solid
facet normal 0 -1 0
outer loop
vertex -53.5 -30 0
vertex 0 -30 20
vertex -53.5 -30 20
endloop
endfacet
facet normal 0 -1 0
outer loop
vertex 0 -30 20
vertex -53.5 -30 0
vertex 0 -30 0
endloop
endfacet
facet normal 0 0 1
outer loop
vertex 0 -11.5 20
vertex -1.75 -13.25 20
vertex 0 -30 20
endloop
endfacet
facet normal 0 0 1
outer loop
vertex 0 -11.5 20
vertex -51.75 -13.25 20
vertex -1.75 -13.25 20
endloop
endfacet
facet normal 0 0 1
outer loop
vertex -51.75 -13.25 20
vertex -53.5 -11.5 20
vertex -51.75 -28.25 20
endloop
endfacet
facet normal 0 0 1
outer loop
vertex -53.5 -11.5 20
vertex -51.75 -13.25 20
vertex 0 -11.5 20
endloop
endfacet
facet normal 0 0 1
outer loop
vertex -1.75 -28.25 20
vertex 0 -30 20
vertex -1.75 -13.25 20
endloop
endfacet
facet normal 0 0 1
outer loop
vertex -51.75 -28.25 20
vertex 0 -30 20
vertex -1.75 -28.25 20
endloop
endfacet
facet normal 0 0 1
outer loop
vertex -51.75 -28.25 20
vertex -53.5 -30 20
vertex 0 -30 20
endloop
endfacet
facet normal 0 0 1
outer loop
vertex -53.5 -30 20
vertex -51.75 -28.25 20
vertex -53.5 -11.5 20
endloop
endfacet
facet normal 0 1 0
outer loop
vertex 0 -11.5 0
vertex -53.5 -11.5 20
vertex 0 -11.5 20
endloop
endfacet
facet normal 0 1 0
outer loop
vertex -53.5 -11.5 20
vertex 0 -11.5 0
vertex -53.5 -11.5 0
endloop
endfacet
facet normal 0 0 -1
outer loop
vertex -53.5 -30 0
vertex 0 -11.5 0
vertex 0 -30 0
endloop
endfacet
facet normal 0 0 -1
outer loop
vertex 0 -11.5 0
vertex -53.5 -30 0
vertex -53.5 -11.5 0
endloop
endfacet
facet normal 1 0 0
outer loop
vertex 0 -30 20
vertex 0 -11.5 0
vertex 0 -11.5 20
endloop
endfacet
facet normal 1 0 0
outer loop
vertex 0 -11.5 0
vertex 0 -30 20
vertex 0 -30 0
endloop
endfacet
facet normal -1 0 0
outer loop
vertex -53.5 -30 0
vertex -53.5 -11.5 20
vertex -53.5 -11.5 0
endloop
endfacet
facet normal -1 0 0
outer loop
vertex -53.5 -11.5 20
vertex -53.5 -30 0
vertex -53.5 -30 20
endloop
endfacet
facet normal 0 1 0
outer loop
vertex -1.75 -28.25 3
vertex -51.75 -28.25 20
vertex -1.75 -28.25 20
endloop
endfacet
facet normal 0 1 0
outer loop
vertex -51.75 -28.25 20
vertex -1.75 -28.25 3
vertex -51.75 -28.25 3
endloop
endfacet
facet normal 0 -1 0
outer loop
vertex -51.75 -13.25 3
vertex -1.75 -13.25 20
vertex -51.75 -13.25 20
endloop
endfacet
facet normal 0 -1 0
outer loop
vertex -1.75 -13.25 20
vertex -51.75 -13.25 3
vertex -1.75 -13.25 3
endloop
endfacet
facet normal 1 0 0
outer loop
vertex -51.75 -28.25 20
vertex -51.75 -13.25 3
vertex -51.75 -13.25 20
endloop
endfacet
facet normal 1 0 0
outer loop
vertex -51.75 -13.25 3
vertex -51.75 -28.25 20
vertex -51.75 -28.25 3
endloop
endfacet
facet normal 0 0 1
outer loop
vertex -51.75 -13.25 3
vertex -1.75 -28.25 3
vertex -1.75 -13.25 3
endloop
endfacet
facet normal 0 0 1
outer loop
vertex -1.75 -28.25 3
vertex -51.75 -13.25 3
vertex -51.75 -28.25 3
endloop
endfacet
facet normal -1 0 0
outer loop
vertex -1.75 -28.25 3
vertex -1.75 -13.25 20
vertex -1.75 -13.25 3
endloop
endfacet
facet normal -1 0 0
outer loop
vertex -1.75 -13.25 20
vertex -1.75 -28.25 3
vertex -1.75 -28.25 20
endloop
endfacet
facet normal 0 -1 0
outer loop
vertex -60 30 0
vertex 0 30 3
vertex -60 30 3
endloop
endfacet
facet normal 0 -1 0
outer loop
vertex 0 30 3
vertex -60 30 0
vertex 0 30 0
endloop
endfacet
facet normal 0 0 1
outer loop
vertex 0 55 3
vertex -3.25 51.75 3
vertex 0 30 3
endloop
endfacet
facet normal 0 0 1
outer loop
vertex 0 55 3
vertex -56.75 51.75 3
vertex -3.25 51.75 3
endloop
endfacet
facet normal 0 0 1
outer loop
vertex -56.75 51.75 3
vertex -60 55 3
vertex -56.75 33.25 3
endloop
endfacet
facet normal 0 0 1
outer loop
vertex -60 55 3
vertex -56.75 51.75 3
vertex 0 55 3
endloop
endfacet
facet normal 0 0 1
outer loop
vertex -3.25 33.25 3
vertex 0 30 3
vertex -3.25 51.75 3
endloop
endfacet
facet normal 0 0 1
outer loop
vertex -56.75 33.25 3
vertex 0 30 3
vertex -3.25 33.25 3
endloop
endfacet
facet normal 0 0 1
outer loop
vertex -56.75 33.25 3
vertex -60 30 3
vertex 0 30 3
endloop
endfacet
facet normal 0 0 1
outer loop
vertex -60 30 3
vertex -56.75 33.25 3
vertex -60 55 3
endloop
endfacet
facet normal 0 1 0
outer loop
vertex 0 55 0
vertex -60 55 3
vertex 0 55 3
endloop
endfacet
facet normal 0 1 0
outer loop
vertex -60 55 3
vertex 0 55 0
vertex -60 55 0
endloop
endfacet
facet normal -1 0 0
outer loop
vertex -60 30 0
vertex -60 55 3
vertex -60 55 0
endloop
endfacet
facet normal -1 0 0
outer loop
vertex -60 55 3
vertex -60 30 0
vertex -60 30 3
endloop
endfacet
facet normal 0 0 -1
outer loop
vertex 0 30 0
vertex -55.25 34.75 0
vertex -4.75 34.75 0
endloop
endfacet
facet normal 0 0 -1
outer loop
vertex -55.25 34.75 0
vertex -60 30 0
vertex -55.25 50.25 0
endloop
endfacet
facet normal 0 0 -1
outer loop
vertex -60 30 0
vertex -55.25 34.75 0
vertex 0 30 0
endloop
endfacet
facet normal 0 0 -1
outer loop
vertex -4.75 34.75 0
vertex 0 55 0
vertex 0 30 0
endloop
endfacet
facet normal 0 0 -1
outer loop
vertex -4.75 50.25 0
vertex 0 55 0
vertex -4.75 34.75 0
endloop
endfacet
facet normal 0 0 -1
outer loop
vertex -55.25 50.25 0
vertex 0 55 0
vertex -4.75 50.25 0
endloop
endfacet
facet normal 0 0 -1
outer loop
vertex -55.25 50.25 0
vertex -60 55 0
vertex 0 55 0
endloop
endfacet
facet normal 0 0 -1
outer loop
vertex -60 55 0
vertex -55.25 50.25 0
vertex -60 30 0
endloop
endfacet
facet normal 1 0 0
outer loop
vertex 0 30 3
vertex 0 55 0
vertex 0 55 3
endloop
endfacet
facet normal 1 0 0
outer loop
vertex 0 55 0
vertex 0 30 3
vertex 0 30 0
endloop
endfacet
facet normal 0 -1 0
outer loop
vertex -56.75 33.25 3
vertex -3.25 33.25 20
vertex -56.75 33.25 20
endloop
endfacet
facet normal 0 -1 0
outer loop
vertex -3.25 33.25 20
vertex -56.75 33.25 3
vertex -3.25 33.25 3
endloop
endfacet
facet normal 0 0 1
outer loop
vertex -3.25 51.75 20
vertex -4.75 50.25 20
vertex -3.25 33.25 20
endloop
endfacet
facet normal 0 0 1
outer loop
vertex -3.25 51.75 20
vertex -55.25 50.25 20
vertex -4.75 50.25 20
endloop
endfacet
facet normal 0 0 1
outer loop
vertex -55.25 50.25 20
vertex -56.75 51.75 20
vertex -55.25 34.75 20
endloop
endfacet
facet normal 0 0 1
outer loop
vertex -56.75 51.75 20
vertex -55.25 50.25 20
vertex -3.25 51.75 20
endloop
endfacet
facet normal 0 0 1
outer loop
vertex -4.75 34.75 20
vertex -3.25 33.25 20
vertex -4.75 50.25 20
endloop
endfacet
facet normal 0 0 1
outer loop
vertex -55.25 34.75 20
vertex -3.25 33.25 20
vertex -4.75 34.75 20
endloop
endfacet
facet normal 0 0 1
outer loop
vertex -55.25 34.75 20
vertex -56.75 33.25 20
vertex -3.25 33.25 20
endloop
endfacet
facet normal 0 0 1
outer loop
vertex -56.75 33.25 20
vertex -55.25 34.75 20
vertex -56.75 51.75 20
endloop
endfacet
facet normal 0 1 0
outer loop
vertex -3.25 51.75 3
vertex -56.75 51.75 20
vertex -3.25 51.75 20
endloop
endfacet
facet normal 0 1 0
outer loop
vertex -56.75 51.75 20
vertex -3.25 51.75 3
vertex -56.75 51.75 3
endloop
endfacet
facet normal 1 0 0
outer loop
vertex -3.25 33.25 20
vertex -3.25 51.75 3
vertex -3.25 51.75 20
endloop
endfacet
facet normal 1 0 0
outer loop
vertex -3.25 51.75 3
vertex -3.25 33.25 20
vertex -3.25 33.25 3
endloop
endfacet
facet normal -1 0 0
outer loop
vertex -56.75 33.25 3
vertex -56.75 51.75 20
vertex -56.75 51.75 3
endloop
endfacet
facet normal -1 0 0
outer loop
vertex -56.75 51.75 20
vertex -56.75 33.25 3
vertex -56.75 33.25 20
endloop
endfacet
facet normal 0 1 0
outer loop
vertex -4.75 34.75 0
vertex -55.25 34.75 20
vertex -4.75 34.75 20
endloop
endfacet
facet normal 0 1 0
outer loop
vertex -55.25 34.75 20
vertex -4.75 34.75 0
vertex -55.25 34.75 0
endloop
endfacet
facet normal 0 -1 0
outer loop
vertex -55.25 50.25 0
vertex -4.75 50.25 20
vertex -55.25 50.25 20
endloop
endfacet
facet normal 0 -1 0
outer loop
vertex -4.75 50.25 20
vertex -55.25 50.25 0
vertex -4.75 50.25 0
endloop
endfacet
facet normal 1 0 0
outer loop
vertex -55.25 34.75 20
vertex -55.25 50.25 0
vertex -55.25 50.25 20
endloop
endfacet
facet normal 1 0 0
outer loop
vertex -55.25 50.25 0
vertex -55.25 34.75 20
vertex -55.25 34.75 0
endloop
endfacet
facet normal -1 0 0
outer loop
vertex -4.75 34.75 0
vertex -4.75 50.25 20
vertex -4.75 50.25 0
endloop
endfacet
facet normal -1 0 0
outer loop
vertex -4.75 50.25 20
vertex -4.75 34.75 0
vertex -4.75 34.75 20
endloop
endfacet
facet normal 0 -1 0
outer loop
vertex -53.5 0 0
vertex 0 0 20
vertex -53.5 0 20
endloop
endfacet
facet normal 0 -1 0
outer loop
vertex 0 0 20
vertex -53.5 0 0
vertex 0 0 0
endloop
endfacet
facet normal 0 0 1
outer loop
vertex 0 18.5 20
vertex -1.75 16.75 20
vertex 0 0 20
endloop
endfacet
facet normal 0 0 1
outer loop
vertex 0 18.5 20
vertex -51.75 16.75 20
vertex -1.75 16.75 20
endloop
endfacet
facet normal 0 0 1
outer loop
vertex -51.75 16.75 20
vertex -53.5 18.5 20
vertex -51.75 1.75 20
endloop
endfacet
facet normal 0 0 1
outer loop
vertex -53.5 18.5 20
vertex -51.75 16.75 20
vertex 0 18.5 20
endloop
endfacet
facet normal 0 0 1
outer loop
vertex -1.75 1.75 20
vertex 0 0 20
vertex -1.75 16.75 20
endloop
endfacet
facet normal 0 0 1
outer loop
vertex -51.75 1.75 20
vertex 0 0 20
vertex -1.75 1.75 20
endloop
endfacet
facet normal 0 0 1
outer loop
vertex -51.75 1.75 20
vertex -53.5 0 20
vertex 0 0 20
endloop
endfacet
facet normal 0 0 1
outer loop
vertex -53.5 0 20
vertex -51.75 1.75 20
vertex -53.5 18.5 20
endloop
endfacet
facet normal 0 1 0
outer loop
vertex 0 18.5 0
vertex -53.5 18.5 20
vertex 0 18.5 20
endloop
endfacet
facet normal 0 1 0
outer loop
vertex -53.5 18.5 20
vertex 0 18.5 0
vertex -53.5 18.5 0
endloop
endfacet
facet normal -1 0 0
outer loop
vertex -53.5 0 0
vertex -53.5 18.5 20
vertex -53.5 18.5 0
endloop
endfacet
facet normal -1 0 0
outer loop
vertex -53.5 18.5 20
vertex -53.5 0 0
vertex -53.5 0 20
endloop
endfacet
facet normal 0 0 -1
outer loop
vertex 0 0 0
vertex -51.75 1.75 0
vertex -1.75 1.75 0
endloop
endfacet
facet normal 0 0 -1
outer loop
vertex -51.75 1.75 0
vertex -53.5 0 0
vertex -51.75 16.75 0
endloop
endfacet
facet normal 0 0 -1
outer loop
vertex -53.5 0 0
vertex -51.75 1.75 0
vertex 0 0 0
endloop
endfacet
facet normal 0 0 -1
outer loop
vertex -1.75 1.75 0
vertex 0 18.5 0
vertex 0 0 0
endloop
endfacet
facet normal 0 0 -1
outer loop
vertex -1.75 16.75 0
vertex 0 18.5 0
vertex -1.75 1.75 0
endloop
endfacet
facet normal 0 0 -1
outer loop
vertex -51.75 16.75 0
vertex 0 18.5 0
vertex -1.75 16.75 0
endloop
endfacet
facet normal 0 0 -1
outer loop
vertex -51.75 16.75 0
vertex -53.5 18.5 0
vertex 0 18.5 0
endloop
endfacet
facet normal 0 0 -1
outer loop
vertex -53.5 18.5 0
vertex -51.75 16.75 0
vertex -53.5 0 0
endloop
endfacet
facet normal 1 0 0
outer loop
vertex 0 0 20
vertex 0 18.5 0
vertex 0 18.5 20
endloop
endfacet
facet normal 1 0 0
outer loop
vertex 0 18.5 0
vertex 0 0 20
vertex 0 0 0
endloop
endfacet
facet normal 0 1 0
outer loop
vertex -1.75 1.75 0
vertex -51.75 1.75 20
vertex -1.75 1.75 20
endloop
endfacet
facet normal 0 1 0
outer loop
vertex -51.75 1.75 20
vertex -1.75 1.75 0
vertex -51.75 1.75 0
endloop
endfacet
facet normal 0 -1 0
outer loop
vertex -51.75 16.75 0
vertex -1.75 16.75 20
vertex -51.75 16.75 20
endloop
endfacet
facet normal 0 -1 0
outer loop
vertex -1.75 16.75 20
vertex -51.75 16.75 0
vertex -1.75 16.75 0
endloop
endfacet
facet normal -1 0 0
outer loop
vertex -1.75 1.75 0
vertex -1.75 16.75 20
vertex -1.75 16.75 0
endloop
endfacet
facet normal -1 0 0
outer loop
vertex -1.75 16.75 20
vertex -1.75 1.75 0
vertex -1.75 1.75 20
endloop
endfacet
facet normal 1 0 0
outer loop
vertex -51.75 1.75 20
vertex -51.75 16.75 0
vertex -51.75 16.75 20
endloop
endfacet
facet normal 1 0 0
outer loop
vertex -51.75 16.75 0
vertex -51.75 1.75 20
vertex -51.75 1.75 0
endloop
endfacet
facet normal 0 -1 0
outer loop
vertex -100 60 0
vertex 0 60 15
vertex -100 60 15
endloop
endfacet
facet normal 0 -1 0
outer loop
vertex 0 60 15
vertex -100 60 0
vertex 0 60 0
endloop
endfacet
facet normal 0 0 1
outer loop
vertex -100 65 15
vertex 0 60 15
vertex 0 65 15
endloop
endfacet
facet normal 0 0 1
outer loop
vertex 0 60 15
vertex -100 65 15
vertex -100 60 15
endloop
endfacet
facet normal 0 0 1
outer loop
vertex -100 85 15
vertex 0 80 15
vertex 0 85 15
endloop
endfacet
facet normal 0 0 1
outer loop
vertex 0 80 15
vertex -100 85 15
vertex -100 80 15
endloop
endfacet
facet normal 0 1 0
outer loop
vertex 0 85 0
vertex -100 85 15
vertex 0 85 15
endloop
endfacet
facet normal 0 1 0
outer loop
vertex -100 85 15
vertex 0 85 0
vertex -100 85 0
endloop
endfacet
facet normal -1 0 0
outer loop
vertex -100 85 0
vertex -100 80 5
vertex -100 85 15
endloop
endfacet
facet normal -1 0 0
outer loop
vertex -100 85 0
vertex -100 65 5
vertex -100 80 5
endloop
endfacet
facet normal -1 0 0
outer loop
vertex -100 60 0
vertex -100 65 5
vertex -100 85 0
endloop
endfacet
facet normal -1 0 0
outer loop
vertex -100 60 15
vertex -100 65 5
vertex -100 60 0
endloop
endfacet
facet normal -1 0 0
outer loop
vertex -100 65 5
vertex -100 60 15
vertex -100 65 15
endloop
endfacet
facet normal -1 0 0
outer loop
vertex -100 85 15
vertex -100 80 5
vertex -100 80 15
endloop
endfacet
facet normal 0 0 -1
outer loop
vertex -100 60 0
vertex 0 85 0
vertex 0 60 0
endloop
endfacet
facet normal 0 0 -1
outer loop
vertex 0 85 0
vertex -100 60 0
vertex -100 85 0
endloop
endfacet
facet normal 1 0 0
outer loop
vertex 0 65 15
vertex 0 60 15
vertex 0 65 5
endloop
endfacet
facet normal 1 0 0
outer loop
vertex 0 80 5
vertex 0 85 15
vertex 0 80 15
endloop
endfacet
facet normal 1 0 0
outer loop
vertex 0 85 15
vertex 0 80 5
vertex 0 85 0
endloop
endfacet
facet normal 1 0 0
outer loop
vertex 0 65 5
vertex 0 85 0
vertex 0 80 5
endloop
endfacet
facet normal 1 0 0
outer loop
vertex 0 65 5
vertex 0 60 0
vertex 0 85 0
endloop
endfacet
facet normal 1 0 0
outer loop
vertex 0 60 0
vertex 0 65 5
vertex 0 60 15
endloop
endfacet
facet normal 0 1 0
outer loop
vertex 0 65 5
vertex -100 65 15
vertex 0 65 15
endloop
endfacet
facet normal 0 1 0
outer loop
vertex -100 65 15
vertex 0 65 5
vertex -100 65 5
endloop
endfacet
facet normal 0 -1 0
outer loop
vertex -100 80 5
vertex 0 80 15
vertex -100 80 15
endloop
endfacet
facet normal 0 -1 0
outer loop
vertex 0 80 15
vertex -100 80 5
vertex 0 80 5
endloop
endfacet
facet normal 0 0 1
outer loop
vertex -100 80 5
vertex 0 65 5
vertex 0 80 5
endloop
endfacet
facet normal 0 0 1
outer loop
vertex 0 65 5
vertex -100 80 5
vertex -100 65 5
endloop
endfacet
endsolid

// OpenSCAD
wall = 3;
outerWidth = 25;
innerWidth = outerWidth - 2*wall;
outerHeight = 60;
innerHeight = outerHeight - 2*wall;

insertWidth = 15;
insertHeight = 50;

fn = 36;
h = 20;
space = 0.5;

module binnenGeleider() {
    dx = ((innerWidth-space) - (insertWidth)) / 2;
    dy = ((innerHeight-space) - (insertHeight)) / 2;
    difference() {
        union() {
            cube([innerWidth-space, innerHeight-space, h]);
        }
        translate([dx, dy, 3]) {
            cube([insertWidth, insertHeight, h-3]);
        }
    }
}

module tussenGeleider() {
    dx = ((innerWidth-space) - (insertWidth)) / 2;
    dy = ((innerHeight-space) - (insertHeight)) / 2;
    difference() {
        union() {
            cube([innerWidth-space, innerHeight-space, h]);
        }
        translate([dx, dy, 0]) {
            cube([insertWidth, insertHeight, h]);
        }
    }
}

module buitenGeleider() {
    h = 20;
    dx = (outerWidth - (insertWidth + space)) / 2;
    dy = (outerHeight - (insertHeight + space)) / 2;
    difference() {
        union() {
            cube([outerWidth, outerHeight, 3]);
            translate([wall+space/2, wall+space/2, 0])
                cube([innerWidth-space, innerHeight-space, h]);
        }
        translate([dx, dy, 0]) {
            cube([insertWidth+space, insertHeight+space, h]);
        }
    }
}

module afdekGoot() {
    h = 15;
    dx = (outerWidth - (insertWidth)) / 2;
    dh = (outerHeight - insertHeight) / 2;
    l = 100;
    difference() {
        union() {
            cube([outerWidth, l, h]);
        }
        translate([dx, 0, dh]) {
            cube([insertWidth, l, h-dh]);
        }
    }
}


rotate([0, 0, 90])
translate([-30, 0, 0])
    binnenGeleider();

rotate([0, 0, 90])
translate([0, 0, 0])
    tussenGeleider();
    
rotate([0, 0, 90])
translate([30, 0, 0])
    buitenGeleider();

rotate([0, 0, 90])
translate([60, 0, 0])
    afdekGoot();
